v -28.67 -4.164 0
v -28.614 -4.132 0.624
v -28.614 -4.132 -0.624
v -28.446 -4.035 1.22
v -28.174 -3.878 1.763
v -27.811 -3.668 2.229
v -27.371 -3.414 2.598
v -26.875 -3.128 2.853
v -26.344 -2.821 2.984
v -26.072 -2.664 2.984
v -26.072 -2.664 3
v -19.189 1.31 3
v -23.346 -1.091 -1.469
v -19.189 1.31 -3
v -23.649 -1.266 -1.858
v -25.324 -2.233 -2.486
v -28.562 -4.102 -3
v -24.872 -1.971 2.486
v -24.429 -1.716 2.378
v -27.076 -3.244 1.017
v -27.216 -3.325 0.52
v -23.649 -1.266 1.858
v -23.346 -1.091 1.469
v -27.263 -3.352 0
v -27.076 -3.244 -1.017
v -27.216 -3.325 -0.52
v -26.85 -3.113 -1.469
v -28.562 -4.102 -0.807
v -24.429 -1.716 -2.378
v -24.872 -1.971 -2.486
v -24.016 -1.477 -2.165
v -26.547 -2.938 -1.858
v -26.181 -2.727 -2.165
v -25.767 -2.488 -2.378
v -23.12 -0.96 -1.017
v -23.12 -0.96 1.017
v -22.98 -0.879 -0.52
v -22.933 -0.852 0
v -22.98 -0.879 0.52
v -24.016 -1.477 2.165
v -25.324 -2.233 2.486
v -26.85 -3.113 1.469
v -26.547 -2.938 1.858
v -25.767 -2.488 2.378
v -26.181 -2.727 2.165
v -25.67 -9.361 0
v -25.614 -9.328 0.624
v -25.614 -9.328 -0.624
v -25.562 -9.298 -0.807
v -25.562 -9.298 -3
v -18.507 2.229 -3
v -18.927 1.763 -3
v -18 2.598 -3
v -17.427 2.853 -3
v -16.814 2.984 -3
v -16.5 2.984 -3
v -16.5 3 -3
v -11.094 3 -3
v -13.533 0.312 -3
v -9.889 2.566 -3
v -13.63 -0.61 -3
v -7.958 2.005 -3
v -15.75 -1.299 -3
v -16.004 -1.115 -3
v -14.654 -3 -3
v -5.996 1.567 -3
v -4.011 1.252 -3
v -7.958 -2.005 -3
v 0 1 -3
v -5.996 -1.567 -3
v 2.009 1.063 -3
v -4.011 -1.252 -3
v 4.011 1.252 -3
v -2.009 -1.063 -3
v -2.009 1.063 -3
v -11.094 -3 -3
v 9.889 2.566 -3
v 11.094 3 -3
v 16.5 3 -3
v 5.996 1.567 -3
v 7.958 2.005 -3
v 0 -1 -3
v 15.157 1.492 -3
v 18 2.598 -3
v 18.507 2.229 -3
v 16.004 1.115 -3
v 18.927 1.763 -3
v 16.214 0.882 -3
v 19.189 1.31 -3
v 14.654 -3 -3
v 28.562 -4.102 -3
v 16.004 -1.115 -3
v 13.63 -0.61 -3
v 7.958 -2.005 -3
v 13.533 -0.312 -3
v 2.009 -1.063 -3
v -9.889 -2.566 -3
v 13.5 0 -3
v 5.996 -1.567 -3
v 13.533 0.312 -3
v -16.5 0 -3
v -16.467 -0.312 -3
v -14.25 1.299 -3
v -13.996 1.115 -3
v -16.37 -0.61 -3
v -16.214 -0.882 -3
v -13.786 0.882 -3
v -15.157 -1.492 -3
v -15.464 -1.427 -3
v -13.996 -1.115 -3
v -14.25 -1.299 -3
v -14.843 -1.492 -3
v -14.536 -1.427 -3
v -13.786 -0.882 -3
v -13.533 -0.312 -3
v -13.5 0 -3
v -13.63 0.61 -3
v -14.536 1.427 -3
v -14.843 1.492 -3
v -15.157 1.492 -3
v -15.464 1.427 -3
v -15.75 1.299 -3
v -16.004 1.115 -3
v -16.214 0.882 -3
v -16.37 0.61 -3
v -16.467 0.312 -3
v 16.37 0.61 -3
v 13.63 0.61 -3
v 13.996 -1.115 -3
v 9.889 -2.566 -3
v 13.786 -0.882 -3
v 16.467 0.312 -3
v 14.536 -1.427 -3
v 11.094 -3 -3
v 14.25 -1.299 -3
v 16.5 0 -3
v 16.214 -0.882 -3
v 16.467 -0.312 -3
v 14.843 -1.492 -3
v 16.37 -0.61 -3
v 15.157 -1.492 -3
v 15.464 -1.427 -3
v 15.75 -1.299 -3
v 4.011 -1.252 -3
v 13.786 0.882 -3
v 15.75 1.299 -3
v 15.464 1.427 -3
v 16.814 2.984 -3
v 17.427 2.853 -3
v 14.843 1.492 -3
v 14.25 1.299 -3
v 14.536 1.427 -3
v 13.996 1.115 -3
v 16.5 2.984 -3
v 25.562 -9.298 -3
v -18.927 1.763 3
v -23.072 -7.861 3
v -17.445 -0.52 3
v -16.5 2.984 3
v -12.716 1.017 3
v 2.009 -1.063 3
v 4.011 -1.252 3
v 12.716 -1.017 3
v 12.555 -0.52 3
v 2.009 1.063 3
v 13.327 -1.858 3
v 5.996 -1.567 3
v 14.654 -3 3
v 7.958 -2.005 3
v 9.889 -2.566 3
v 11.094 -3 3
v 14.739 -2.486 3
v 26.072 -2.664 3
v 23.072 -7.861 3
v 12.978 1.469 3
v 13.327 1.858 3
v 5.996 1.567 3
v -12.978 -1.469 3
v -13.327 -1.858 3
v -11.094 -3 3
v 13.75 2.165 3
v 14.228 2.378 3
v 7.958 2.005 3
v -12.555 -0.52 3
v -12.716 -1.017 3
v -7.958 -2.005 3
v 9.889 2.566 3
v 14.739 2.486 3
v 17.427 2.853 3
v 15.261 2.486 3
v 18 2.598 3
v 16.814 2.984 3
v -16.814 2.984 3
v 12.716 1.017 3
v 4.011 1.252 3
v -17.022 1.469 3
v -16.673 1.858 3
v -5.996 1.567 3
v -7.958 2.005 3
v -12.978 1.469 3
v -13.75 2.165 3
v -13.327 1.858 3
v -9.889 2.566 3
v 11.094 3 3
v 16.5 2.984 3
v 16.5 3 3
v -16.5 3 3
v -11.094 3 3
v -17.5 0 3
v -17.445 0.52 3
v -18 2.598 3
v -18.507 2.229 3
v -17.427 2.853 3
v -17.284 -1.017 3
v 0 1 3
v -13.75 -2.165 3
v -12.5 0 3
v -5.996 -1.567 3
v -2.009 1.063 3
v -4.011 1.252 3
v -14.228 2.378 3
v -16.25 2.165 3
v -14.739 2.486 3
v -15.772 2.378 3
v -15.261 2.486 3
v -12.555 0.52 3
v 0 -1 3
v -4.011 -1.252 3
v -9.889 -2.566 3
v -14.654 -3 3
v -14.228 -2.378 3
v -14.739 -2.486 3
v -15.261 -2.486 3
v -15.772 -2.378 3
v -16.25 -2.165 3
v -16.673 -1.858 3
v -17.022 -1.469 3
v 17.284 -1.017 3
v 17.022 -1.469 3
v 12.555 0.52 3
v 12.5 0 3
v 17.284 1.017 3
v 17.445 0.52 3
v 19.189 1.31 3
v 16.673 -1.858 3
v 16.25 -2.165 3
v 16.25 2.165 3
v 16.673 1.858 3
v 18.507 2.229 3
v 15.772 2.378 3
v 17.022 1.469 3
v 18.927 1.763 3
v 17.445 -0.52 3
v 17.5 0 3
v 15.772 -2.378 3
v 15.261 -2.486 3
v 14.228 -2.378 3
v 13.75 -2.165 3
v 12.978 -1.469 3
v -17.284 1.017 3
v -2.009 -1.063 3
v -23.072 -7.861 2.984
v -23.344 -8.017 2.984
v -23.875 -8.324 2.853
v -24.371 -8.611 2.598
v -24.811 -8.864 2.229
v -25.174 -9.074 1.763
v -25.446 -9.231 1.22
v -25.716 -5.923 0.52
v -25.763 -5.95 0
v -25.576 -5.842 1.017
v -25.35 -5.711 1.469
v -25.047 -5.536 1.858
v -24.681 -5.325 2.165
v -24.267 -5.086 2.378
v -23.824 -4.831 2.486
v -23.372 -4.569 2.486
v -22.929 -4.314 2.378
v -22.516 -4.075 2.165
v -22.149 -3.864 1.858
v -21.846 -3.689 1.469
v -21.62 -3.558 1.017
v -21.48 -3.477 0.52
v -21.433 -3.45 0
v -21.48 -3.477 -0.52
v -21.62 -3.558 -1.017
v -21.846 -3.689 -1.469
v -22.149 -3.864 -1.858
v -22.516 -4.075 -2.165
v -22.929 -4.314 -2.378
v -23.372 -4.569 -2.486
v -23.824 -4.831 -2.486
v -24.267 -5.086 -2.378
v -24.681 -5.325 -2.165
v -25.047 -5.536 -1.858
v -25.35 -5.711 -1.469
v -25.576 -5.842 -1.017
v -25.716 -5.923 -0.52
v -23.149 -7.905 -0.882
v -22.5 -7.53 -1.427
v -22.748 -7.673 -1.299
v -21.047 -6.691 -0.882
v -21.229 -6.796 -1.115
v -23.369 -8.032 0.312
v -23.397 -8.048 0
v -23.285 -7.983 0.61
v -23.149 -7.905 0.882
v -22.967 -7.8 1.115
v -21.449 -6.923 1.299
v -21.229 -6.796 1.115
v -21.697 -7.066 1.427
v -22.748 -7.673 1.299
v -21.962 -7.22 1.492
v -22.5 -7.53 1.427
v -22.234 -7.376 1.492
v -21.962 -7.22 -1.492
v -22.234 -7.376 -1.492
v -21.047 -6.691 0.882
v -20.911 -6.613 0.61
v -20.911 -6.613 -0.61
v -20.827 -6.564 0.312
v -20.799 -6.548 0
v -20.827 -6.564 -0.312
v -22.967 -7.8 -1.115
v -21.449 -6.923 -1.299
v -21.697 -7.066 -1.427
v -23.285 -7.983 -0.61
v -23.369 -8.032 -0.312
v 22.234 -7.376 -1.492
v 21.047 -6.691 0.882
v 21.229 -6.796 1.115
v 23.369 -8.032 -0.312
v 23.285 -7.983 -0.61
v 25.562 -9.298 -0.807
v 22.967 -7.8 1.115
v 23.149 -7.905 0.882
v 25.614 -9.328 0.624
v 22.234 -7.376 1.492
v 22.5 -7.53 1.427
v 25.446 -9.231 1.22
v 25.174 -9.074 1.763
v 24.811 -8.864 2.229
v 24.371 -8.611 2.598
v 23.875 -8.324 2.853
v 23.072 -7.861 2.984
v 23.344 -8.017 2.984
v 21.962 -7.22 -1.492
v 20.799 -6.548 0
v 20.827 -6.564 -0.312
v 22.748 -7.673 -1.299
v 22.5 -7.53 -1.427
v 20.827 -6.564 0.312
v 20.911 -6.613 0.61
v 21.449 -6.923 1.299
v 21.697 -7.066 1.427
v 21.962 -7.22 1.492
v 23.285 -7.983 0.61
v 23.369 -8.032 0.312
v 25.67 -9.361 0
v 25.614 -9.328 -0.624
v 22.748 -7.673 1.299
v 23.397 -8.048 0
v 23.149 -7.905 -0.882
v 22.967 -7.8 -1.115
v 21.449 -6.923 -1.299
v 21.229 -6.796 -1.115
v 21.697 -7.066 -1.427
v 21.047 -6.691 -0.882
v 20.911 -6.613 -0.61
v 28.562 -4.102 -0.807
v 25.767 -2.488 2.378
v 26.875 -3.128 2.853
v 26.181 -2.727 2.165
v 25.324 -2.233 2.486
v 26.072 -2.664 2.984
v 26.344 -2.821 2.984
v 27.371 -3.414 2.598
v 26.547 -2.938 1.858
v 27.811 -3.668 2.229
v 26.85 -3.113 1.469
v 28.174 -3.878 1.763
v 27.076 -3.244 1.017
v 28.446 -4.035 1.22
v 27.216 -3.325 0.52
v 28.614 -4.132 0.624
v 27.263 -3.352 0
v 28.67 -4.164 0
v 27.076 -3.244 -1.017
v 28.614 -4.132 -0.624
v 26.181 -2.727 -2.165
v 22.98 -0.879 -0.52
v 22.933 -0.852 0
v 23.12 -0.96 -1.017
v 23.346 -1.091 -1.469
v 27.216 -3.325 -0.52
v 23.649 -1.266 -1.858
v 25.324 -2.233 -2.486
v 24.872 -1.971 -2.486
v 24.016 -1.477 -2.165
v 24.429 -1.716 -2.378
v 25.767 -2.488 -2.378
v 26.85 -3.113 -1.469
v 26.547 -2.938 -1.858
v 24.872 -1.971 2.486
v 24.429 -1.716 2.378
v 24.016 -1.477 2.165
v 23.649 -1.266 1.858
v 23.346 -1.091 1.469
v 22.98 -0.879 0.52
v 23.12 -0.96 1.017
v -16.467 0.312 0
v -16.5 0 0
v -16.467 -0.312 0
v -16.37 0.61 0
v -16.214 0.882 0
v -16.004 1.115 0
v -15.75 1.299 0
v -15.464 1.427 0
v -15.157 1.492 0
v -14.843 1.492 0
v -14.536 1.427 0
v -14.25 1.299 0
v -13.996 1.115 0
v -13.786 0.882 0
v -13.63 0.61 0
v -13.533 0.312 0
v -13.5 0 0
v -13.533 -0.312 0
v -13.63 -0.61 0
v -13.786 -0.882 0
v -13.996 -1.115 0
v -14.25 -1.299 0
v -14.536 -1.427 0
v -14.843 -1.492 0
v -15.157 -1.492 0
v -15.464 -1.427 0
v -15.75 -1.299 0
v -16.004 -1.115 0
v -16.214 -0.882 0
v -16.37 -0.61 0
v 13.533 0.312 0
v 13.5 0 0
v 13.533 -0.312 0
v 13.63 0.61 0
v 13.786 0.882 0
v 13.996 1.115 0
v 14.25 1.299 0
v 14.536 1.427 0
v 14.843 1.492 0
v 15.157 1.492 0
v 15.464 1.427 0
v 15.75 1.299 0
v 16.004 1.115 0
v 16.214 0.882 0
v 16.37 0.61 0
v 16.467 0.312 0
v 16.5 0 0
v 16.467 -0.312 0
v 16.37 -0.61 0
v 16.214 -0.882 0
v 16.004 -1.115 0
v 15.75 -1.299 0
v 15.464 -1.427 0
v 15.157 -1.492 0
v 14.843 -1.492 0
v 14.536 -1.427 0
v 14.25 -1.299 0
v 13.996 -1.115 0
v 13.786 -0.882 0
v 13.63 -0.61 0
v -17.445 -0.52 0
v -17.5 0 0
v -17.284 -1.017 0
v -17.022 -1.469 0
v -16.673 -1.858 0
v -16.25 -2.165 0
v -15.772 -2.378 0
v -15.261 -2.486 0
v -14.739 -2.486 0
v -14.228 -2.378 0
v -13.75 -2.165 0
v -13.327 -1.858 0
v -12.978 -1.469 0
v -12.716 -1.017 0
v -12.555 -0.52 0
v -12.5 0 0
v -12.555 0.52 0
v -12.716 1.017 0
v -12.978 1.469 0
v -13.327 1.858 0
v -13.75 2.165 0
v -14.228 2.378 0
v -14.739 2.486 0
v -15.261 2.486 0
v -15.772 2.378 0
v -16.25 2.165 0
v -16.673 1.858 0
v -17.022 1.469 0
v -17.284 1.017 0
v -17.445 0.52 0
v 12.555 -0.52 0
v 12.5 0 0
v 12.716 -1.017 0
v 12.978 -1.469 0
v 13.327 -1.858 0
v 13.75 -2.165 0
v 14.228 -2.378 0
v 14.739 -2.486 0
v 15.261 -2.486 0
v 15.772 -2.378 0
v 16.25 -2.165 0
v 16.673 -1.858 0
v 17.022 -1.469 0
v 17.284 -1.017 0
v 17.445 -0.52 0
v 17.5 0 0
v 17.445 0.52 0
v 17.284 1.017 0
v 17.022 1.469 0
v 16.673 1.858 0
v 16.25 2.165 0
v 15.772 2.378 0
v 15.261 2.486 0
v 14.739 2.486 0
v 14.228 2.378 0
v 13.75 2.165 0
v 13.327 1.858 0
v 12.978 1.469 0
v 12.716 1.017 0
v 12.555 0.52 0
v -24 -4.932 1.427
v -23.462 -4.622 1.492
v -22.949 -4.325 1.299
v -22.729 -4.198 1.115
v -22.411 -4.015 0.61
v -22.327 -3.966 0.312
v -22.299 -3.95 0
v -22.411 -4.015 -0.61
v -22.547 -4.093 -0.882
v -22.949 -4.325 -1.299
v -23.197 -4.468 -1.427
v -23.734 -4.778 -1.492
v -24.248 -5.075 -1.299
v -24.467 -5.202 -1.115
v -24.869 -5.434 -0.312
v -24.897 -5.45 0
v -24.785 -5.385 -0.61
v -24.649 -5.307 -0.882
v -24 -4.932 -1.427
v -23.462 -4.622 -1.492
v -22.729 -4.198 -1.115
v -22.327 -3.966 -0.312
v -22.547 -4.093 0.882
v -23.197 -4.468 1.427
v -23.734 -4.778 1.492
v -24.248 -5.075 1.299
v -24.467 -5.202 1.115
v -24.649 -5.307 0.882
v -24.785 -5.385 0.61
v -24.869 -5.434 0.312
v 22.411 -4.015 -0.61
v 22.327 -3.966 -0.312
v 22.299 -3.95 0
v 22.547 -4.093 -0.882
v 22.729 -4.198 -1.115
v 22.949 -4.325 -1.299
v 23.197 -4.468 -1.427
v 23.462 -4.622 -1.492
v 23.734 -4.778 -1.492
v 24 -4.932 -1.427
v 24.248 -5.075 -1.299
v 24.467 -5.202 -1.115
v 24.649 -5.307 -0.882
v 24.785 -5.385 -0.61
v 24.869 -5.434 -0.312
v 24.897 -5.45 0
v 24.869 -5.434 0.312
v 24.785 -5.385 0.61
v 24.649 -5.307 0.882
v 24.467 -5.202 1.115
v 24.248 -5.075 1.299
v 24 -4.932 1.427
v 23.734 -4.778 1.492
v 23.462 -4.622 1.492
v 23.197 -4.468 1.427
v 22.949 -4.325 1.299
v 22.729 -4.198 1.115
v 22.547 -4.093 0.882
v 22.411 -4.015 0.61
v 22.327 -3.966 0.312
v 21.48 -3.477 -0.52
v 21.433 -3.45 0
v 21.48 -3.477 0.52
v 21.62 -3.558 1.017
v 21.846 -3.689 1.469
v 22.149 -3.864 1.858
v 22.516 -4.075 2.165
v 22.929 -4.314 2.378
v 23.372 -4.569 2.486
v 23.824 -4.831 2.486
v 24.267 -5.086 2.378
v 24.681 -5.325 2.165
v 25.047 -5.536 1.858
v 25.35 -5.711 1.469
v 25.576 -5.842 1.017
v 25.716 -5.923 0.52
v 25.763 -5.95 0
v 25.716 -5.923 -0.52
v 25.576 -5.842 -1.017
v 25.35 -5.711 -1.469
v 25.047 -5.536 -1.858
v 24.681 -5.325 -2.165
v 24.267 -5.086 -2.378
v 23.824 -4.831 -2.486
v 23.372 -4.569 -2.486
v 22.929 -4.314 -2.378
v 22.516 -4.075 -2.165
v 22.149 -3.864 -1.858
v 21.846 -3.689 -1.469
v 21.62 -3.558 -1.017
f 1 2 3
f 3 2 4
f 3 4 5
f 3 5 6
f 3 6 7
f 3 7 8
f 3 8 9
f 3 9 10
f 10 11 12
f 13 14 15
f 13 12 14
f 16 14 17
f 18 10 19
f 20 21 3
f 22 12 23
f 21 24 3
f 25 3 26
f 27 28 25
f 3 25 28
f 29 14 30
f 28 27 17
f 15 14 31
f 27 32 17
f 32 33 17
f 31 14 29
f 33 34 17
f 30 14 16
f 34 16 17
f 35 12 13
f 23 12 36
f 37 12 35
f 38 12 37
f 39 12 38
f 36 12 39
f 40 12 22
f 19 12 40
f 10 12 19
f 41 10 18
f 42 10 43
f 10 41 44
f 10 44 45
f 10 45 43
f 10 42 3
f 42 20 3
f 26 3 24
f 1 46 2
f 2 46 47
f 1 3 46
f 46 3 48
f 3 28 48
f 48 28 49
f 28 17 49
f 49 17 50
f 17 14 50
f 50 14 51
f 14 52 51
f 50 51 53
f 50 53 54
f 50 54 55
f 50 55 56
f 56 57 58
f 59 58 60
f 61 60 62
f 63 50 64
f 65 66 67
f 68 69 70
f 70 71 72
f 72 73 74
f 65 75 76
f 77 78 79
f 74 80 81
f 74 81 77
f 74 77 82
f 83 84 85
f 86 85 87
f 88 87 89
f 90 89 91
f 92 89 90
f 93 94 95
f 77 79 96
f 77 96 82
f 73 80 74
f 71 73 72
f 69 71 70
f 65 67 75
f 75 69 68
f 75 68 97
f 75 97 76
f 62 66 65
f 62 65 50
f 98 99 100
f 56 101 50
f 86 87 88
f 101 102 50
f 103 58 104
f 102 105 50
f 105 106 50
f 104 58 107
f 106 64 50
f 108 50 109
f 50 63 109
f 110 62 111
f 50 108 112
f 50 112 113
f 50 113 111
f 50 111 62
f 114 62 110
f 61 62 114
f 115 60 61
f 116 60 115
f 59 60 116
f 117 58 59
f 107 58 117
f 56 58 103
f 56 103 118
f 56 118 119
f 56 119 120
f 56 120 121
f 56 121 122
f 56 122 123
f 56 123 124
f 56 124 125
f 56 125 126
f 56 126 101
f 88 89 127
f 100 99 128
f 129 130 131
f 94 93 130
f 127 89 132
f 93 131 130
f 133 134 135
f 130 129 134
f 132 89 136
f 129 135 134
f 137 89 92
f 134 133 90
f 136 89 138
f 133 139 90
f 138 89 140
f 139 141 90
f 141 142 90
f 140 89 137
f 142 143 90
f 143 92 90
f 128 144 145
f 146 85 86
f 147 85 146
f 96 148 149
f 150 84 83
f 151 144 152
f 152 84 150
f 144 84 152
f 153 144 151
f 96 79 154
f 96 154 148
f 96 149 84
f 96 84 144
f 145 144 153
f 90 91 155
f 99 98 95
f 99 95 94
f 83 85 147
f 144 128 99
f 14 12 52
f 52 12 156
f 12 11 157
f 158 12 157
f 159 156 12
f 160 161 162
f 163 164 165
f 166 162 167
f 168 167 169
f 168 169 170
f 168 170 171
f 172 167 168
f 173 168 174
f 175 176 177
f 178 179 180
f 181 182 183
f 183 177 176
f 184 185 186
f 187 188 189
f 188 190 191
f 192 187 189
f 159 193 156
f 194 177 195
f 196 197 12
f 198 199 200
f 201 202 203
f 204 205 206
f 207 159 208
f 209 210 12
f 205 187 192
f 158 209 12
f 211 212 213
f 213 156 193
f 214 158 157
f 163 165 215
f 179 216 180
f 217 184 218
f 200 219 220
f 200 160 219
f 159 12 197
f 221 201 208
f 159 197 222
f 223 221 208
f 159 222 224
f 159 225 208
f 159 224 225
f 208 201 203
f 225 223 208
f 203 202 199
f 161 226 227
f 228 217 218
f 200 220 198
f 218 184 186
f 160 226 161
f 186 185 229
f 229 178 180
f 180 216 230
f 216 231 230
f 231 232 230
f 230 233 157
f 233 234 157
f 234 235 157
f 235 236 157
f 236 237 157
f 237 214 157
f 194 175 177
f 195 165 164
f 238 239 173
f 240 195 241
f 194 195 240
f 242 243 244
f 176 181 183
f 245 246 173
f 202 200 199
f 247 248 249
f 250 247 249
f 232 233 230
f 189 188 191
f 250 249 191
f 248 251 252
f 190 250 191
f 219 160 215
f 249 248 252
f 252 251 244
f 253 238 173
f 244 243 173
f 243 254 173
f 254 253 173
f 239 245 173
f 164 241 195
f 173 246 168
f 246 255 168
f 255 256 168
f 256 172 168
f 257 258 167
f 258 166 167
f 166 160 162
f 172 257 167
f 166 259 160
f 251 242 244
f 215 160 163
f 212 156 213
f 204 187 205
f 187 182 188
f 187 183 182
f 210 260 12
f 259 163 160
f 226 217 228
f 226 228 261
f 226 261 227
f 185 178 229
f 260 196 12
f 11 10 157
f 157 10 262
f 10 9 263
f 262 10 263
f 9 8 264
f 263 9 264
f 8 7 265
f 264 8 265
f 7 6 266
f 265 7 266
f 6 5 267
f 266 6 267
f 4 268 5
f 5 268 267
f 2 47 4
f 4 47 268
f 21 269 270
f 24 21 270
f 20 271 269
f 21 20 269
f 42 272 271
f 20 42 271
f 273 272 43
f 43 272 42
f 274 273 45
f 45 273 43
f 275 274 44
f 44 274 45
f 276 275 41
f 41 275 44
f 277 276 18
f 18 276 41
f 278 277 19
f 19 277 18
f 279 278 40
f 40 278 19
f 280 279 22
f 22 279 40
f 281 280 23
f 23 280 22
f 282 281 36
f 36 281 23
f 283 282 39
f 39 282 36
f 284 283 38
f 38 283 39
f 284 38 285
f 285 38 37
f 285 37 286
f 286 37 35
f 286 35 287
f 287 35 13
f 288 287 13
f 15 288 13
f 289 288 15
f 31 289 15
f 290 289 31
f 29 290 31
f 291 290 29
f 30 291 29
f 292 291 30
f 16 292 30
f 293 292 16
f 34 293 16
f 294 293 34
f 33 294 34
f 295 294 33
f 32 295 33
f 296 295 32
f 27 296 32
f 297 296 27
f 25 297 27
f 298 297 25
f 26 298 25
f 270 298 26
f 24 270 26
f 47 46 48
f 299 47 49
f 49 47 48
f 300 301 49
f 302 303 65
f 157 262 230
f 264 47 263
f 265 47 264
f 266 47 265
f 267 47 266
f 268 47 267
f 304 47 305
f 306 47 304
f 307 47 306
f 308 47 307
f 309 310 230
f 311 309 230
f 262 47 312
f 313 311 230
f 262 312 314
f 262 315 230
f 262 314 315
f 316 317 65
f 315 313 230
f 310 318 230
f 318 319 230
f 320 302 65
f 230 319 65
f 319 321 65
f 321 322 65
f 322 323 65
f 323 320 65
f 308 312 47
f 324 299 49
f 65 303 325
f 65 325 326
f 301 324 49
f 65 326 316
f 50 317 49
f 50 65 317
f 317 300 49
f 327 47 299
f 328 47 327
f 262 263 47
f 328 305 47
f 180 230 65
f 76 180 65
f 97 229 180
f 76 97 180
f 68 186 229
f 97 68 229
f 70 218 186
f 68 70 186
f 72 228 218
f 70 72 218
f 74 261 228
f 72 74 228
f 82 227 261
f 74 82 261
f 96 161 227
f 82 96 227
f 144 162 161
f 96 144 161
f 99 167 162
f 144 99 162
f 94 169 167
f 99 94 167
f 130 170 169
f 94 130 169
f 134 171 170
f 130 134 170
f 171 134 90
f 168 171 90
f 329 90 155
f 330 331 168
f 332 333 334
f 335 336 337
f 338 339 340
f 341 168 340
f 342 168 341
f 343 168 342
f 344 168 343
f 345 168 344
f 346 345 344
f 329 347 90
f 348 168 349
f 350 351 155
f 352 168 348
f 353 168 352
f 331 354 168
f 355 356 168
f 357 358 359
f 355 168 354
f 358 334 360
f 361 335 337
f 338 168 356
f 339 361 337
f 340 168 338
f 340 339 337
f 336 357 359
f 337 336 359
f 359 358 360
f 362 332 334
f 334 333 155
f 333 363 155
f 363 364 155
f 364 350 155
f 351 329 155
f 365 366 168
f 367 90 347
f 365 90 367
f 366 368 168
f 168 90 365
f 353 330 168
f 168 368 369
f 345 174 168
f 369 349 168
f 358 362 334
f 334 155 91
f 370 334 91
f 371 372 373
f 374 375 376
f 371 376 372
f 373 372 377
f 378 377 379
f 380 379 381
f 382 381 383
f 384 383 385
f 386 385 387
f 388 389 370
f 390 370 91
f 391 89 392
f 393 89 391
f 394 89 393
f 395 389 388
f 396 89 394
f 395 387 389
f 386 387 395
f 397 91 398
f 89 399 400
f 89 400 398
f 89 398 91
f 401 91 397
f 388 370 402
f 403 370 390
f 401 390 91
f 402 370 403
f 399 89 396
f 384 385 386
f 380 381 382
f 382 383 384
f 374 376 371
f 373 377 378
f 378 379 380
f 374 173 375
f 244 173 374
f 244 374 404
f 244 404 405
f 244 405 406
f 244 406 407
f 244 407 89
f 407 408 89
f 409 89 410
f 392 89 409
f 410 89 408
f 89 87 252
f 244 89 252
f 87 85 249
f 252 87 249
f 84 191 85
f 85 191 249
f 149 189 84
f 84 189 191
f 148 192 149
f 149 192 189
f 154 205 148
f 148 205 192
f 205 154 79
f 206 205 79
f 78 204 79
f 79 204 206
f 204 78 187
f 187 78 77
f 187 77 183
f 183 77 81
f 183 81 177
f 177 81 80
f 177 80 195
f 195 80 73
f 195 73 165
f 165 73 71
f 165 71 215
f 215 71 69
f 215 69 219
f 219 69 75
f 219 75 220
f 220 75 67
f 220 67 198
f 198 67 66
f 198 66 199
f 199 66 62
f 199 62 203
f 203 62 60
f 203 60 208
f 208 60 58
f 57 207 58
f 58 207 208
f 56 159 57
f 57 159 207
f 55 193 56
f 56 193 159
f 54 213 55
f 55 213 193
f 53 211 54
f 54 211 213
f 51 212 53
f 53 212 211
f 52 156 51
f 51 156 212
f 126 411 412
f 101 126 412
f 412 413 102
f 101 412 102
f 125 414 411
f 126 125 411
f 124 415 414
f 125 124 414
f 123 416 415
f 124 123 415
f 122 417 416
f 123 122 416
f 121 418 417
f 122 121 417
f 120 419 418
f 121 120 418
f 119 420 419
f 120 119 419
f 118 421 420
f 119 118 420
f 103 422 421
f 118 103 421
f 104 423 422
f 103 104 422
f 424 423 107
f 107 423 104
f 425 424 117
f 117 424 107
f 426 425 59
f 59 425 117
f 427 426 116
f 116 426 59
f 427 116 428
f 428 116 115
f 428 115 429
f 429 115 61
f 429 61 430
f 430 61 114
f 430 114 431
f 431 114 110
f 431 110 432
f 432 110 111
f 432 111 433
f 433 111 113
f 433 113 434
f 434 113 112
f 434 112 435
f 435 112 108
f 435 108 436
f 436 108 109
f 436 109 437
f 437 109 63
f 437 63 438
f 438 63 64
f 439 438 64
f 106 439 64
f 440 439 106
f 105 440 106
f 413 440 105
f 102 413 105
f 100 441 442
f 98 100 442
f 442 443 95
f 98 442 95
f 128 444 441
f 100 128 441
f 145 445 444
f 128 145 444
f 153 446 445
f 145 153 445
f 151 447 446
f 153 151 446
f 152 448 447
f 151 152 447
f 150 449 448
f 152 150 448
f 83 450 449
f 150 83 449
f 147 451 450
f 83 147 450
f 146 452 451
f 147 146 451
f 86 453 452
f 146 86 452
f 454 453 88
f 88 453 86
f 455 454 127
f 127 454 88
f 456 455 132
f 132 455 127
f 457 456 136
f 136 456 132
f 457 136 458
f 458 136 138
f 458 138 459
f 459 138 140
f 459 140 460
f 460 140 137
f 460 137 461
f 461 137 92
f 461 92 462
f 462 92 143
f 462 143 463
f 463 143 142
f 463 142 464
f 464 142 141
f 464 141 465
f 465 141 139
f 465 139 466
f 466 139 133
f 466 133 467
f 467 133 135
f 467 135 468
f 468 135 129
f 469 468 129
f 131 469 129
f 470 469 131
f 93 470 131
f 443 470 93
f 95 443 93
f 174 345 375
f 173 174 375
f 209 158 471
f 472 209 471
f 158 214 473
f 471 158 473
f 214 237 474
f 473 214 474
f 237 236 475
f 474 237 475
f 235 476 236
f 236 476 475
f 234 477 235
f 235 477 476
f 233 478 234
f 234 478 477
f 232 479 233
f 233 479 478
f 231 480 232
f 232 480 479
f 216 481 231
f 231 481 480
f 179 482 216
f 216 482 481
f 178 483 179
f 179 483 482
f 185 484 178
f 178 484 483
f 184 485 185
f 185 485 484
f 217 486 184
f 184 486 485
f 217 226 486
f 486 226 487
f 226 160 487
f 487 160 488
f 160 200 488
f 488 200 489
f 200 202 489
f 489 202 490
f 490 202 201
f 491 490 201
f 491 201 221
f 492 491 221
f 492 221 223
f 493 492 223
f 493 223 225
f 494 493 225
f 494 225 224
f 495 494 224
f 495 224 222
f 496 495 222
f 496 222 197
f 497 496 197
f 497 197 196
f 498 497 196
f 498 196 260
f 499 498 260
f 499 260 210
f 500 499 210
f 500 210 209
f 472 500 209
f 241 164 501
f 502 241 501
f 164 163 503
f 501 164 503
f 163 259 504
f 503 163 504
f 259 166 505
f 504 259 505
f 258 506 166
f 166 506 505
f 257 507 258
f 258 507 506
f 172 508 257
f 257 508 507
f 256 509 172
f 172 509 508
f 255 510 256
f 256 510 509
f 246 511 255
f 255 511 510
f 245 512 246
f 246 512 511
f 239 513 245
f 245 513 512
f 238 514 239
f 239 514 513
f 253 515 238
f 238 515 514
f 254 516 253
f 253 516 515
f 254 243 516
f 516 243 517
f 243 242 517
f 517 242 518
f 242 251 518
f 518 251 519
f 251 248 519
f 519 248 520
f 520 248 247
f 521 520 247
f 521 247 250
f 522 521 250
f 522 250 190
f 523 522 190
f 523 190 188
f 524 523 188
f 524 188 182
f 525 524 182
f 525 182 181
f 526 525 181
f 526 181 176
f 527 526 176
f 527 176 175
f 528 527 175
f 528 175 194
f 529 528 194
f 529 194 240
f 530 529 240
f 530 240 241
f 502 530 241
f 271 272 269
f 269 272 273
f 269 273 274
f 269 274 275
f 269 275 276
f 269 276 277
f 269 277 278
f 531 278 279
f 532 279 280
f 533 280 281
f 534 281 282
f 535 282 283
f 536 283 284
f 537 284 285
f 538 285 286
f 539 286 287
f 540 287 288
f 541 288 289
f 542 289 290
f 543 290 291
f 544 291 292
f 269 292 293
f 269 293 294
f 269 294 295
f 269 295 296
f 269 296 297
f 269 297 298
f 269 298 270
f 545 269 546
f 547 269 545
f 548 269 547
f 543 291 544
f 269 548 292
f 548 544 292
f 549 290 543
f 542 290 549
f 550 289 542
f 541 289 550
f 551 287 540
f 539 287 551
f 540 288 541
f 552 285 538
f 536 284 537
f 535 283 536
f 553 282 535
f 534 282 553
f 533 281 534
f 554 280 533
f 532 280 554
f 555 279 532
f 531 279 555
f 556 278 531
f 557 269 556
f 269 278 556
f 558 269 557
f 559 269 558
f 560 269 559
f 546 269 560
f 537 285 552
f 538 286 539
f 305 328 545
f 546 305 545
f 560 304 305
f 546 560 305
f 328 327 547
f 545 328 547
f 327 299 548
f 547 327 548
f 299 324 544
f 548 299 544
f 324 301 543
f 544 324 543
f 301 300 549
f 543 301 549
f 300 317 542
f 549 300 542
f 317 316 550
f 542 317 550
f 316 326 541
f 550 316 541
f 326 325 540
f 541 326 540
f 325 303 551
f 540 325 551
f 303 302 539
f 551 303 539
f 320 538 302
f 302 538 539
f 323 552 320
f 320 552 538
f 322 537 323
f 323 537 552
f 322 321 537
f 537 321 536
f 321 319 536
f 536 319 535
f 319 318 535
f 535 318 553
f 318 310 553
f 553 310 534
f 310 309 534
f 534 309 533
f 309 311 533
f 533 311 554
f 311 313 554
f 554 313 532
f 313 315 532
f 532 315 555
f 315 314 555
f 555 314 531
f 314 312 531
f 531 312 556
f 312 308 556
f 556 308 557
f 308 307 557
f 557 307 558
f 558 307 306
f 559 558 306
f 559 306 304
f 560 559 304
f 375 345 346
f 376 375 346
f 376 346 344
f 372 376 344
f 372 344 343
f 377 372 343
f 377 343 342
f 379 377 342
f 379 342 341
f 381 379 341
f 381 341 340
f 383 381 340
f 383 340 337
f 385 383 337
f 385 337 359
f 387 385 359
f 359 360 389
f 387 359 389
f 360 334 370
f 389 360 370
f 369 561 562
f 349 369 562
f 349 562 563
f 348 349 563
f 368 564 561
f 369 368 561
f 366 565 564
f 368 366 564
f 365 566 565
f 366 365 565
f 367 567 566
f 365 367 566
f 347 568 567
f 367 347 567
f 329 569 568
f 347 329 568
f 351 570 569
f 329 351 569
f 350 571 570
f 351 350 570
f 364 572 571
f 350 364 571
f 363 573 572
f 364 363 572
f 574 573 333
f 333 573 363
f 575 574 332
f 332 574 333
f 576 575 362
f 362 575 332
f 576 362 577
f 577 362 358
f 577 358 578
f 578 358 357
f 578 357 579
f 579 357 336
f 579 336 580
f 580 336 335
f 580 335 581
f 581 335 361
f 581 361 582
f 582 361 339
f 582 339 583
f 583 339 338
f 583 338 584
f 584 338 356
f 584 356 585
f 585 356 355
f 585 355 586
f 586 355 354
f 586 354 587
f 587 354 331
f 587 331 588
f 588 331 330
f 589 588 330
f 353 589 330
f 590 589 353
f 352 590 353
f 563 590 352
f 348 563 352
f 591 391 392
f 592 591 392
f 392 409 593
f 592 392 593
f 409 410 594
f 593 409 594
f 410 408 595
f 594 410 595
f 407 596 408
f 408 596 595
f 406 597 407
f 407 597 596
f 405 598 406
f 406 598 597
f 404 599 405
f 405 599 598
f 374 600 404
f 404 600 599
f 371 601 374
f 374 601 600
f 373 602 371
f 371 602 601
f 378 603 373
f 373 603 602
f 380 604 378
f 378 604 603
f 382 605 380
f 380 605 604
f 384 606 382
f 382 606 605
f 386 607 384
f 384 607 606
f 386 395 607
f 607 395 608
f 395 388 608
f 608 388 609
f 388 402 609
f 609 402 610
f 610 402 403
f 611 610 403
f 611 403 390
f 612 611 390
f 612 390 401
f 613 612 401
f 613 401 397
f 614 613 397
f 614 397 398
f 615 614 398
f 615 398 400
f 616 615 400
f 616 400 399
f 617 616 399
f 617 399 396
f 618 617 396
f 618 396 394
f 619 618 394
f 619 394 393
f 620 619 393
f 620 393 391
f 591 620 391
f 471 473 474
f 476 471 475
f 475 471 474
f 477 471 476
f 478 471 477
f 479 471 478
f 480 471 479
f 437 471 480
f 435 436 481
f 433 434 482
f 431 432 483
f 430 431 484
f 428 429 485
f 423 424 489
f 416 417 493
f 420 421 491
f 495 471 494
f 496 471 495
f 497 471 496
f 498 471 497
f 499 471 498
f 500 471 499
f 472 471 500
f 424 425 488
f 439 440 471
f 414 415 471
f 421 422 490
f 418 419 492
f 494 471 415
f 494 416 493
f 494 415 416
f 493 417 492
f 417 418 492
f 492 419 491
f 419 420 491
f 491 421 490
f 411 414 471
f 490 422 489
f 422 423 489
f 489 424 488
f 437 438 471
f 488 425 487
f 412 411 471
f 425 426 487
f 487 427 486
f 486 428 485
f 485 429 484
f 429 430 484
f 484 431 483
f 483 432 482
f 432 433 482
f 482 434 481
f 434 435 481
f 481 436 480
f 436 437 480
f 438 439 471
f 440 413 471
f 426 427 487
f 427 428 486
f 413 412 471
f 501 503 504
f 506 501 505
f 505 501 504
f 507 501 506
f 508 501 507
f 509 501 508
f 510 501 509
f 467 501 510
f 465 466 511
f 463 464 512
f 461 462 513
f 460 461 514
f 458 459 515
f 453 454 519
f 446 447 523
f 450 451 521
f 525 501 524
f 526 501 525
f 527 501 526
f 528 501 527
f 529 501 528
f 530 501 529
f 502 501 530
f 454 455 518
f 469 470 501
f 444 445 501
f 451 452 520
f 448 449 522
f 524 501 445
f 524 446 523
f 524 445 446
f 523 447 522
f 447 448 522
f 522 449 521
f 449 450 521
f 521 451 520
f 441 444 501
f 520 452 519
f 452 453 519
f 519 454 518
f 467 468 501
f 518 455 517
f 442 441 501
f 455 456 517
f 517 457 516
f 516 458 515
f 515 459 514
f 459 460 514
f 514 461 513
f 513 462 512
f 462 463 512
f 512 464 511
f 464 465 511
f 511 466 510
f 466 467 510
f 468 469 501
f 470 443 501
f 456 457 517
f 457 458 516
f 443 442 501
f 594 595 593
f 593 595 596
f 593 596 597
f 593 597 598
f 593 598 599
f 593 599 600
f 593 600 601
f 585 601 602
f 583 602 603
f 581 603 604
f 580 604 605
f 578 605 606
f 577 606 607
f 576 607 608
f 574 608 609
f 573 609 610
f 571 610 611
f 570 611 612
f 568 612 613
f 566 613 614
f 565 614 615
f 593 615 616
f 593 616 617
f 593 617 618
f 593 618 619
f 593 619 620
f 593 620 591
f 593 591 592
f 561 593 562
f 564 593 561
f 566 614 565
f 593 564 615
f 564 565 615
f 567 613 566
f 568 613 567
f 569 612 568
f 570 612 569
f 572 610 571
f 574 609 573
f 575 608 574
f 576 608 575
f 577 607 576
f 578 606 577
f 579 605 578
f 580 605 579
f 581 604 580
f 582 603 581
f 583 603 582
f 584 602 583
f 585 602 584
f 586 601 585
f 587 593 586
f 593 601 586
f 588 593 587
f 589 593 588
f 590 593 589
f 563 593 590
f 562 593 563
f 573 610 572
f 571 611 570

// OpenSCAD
module fan_bracket()
{
	// Imagine these values looking straight at the piece while
	// it is laying on it's back for print. 
	fan_base_width = 33;
	fan_base_length = 6;
	fan_base_height = 6;

	fan_bracket_base_fancy(fan_base_width, fan_base_length, fan_base_height);
	
	translate([-21, -fan_base_length/2-0.2, fan_base_length/2-fan_base_height/2]) rotate([90, 0, 30])  
	{
		fan_bracket_wing(fan_base_width, fan_base_length, fan_base_height, -3, -7, 0);
	}
	translate([21, -fan_base_length/2-0.2, fan_base_length/2-fan_base_height/2]) rotate([90, 0, -30])  
	{
		fan_bracket_wing(fan_base_width, fan_base_length, fan_base_height, 3, 1, -6);
	}
	
}

module fan_bracket_wing(fan_base_width, fan_base_length, fan_base_height, hole_offset, cube_offset, filler)
{
	difference()
	{
		union()
		{
			fan_bracket_base(fan_base_width/4, fan_base_length, fan_base_height);
			translate([cube_offset, -3, -3]) cube([6,3,6]);
			translate([filler, -3, -3]) cube([6,6,6]);
		}
		translate([hole_offset, 0, 0]) rotate([180, 0, 0]) screw();
	}
	
}

module fan_bracket_base(fan_base_width, fan_base_length, fan_base_height )
{
	// Combine the cylinders on the end with the rectangle in the middle
	union()
	{
		// The cube of the base
		translate([-fan_base_width/2,- fan_base_length/2,  -fan_base_height/2 ]) 
		{
			cube([fan_base_width,  fan_base_length, fan_base_height]);
		}

		// Round corners on the base
		translate([-fan_base_width/2, 0, 0])  cylinder(r=fan_base_length/2,h=fan_base_height,center=true,$fn=30);
		translate([fan_base_width/2, 0, 0])  cylinder(r=fan_base_length/2,h=fan_base_height,center=true,$fn=30);
	}
}

module fan_bracket_base_fancy(fan_base_width, fan_base_length, fan_base_height)
{
	cutout_radius = 32;
	// Create the base and cut out part on top and bottom

	difference()
	{	
		fan_bracket_base(fan_base_width, fan_base_length, fan_base_height);
		translate([0, cutout_radius+1, 0]) cylinder(r=cutout_radius, h=10,center=true,$fn=100);
		translate([0, -cutout_radius-1, 0]) cylinder(r=cutout_radius, h=10,center=true,$fn=100);
		
	}	
}

// A single 3mm screw
module screw() 
{
	union()
	{	
		translate([0, 0, 2]) cylinder(r=2.5,h=4, center=true,$fn=30);
		cylinder(r=1.5,h=10,center=true,$fn=30);
	}
	
}

// Two screws spaced 30mm apart
module attatchment_screws()
{
	rotate([0,0,0])
	{
		translate([15,0,0]) screw();
		translate([-15,0,0]) screw();
	}
}


// Used to render the stl for print
module print()
{
	difference()
	{
		fan_bracket();
		attatchment_screws();
	}
}


print();
